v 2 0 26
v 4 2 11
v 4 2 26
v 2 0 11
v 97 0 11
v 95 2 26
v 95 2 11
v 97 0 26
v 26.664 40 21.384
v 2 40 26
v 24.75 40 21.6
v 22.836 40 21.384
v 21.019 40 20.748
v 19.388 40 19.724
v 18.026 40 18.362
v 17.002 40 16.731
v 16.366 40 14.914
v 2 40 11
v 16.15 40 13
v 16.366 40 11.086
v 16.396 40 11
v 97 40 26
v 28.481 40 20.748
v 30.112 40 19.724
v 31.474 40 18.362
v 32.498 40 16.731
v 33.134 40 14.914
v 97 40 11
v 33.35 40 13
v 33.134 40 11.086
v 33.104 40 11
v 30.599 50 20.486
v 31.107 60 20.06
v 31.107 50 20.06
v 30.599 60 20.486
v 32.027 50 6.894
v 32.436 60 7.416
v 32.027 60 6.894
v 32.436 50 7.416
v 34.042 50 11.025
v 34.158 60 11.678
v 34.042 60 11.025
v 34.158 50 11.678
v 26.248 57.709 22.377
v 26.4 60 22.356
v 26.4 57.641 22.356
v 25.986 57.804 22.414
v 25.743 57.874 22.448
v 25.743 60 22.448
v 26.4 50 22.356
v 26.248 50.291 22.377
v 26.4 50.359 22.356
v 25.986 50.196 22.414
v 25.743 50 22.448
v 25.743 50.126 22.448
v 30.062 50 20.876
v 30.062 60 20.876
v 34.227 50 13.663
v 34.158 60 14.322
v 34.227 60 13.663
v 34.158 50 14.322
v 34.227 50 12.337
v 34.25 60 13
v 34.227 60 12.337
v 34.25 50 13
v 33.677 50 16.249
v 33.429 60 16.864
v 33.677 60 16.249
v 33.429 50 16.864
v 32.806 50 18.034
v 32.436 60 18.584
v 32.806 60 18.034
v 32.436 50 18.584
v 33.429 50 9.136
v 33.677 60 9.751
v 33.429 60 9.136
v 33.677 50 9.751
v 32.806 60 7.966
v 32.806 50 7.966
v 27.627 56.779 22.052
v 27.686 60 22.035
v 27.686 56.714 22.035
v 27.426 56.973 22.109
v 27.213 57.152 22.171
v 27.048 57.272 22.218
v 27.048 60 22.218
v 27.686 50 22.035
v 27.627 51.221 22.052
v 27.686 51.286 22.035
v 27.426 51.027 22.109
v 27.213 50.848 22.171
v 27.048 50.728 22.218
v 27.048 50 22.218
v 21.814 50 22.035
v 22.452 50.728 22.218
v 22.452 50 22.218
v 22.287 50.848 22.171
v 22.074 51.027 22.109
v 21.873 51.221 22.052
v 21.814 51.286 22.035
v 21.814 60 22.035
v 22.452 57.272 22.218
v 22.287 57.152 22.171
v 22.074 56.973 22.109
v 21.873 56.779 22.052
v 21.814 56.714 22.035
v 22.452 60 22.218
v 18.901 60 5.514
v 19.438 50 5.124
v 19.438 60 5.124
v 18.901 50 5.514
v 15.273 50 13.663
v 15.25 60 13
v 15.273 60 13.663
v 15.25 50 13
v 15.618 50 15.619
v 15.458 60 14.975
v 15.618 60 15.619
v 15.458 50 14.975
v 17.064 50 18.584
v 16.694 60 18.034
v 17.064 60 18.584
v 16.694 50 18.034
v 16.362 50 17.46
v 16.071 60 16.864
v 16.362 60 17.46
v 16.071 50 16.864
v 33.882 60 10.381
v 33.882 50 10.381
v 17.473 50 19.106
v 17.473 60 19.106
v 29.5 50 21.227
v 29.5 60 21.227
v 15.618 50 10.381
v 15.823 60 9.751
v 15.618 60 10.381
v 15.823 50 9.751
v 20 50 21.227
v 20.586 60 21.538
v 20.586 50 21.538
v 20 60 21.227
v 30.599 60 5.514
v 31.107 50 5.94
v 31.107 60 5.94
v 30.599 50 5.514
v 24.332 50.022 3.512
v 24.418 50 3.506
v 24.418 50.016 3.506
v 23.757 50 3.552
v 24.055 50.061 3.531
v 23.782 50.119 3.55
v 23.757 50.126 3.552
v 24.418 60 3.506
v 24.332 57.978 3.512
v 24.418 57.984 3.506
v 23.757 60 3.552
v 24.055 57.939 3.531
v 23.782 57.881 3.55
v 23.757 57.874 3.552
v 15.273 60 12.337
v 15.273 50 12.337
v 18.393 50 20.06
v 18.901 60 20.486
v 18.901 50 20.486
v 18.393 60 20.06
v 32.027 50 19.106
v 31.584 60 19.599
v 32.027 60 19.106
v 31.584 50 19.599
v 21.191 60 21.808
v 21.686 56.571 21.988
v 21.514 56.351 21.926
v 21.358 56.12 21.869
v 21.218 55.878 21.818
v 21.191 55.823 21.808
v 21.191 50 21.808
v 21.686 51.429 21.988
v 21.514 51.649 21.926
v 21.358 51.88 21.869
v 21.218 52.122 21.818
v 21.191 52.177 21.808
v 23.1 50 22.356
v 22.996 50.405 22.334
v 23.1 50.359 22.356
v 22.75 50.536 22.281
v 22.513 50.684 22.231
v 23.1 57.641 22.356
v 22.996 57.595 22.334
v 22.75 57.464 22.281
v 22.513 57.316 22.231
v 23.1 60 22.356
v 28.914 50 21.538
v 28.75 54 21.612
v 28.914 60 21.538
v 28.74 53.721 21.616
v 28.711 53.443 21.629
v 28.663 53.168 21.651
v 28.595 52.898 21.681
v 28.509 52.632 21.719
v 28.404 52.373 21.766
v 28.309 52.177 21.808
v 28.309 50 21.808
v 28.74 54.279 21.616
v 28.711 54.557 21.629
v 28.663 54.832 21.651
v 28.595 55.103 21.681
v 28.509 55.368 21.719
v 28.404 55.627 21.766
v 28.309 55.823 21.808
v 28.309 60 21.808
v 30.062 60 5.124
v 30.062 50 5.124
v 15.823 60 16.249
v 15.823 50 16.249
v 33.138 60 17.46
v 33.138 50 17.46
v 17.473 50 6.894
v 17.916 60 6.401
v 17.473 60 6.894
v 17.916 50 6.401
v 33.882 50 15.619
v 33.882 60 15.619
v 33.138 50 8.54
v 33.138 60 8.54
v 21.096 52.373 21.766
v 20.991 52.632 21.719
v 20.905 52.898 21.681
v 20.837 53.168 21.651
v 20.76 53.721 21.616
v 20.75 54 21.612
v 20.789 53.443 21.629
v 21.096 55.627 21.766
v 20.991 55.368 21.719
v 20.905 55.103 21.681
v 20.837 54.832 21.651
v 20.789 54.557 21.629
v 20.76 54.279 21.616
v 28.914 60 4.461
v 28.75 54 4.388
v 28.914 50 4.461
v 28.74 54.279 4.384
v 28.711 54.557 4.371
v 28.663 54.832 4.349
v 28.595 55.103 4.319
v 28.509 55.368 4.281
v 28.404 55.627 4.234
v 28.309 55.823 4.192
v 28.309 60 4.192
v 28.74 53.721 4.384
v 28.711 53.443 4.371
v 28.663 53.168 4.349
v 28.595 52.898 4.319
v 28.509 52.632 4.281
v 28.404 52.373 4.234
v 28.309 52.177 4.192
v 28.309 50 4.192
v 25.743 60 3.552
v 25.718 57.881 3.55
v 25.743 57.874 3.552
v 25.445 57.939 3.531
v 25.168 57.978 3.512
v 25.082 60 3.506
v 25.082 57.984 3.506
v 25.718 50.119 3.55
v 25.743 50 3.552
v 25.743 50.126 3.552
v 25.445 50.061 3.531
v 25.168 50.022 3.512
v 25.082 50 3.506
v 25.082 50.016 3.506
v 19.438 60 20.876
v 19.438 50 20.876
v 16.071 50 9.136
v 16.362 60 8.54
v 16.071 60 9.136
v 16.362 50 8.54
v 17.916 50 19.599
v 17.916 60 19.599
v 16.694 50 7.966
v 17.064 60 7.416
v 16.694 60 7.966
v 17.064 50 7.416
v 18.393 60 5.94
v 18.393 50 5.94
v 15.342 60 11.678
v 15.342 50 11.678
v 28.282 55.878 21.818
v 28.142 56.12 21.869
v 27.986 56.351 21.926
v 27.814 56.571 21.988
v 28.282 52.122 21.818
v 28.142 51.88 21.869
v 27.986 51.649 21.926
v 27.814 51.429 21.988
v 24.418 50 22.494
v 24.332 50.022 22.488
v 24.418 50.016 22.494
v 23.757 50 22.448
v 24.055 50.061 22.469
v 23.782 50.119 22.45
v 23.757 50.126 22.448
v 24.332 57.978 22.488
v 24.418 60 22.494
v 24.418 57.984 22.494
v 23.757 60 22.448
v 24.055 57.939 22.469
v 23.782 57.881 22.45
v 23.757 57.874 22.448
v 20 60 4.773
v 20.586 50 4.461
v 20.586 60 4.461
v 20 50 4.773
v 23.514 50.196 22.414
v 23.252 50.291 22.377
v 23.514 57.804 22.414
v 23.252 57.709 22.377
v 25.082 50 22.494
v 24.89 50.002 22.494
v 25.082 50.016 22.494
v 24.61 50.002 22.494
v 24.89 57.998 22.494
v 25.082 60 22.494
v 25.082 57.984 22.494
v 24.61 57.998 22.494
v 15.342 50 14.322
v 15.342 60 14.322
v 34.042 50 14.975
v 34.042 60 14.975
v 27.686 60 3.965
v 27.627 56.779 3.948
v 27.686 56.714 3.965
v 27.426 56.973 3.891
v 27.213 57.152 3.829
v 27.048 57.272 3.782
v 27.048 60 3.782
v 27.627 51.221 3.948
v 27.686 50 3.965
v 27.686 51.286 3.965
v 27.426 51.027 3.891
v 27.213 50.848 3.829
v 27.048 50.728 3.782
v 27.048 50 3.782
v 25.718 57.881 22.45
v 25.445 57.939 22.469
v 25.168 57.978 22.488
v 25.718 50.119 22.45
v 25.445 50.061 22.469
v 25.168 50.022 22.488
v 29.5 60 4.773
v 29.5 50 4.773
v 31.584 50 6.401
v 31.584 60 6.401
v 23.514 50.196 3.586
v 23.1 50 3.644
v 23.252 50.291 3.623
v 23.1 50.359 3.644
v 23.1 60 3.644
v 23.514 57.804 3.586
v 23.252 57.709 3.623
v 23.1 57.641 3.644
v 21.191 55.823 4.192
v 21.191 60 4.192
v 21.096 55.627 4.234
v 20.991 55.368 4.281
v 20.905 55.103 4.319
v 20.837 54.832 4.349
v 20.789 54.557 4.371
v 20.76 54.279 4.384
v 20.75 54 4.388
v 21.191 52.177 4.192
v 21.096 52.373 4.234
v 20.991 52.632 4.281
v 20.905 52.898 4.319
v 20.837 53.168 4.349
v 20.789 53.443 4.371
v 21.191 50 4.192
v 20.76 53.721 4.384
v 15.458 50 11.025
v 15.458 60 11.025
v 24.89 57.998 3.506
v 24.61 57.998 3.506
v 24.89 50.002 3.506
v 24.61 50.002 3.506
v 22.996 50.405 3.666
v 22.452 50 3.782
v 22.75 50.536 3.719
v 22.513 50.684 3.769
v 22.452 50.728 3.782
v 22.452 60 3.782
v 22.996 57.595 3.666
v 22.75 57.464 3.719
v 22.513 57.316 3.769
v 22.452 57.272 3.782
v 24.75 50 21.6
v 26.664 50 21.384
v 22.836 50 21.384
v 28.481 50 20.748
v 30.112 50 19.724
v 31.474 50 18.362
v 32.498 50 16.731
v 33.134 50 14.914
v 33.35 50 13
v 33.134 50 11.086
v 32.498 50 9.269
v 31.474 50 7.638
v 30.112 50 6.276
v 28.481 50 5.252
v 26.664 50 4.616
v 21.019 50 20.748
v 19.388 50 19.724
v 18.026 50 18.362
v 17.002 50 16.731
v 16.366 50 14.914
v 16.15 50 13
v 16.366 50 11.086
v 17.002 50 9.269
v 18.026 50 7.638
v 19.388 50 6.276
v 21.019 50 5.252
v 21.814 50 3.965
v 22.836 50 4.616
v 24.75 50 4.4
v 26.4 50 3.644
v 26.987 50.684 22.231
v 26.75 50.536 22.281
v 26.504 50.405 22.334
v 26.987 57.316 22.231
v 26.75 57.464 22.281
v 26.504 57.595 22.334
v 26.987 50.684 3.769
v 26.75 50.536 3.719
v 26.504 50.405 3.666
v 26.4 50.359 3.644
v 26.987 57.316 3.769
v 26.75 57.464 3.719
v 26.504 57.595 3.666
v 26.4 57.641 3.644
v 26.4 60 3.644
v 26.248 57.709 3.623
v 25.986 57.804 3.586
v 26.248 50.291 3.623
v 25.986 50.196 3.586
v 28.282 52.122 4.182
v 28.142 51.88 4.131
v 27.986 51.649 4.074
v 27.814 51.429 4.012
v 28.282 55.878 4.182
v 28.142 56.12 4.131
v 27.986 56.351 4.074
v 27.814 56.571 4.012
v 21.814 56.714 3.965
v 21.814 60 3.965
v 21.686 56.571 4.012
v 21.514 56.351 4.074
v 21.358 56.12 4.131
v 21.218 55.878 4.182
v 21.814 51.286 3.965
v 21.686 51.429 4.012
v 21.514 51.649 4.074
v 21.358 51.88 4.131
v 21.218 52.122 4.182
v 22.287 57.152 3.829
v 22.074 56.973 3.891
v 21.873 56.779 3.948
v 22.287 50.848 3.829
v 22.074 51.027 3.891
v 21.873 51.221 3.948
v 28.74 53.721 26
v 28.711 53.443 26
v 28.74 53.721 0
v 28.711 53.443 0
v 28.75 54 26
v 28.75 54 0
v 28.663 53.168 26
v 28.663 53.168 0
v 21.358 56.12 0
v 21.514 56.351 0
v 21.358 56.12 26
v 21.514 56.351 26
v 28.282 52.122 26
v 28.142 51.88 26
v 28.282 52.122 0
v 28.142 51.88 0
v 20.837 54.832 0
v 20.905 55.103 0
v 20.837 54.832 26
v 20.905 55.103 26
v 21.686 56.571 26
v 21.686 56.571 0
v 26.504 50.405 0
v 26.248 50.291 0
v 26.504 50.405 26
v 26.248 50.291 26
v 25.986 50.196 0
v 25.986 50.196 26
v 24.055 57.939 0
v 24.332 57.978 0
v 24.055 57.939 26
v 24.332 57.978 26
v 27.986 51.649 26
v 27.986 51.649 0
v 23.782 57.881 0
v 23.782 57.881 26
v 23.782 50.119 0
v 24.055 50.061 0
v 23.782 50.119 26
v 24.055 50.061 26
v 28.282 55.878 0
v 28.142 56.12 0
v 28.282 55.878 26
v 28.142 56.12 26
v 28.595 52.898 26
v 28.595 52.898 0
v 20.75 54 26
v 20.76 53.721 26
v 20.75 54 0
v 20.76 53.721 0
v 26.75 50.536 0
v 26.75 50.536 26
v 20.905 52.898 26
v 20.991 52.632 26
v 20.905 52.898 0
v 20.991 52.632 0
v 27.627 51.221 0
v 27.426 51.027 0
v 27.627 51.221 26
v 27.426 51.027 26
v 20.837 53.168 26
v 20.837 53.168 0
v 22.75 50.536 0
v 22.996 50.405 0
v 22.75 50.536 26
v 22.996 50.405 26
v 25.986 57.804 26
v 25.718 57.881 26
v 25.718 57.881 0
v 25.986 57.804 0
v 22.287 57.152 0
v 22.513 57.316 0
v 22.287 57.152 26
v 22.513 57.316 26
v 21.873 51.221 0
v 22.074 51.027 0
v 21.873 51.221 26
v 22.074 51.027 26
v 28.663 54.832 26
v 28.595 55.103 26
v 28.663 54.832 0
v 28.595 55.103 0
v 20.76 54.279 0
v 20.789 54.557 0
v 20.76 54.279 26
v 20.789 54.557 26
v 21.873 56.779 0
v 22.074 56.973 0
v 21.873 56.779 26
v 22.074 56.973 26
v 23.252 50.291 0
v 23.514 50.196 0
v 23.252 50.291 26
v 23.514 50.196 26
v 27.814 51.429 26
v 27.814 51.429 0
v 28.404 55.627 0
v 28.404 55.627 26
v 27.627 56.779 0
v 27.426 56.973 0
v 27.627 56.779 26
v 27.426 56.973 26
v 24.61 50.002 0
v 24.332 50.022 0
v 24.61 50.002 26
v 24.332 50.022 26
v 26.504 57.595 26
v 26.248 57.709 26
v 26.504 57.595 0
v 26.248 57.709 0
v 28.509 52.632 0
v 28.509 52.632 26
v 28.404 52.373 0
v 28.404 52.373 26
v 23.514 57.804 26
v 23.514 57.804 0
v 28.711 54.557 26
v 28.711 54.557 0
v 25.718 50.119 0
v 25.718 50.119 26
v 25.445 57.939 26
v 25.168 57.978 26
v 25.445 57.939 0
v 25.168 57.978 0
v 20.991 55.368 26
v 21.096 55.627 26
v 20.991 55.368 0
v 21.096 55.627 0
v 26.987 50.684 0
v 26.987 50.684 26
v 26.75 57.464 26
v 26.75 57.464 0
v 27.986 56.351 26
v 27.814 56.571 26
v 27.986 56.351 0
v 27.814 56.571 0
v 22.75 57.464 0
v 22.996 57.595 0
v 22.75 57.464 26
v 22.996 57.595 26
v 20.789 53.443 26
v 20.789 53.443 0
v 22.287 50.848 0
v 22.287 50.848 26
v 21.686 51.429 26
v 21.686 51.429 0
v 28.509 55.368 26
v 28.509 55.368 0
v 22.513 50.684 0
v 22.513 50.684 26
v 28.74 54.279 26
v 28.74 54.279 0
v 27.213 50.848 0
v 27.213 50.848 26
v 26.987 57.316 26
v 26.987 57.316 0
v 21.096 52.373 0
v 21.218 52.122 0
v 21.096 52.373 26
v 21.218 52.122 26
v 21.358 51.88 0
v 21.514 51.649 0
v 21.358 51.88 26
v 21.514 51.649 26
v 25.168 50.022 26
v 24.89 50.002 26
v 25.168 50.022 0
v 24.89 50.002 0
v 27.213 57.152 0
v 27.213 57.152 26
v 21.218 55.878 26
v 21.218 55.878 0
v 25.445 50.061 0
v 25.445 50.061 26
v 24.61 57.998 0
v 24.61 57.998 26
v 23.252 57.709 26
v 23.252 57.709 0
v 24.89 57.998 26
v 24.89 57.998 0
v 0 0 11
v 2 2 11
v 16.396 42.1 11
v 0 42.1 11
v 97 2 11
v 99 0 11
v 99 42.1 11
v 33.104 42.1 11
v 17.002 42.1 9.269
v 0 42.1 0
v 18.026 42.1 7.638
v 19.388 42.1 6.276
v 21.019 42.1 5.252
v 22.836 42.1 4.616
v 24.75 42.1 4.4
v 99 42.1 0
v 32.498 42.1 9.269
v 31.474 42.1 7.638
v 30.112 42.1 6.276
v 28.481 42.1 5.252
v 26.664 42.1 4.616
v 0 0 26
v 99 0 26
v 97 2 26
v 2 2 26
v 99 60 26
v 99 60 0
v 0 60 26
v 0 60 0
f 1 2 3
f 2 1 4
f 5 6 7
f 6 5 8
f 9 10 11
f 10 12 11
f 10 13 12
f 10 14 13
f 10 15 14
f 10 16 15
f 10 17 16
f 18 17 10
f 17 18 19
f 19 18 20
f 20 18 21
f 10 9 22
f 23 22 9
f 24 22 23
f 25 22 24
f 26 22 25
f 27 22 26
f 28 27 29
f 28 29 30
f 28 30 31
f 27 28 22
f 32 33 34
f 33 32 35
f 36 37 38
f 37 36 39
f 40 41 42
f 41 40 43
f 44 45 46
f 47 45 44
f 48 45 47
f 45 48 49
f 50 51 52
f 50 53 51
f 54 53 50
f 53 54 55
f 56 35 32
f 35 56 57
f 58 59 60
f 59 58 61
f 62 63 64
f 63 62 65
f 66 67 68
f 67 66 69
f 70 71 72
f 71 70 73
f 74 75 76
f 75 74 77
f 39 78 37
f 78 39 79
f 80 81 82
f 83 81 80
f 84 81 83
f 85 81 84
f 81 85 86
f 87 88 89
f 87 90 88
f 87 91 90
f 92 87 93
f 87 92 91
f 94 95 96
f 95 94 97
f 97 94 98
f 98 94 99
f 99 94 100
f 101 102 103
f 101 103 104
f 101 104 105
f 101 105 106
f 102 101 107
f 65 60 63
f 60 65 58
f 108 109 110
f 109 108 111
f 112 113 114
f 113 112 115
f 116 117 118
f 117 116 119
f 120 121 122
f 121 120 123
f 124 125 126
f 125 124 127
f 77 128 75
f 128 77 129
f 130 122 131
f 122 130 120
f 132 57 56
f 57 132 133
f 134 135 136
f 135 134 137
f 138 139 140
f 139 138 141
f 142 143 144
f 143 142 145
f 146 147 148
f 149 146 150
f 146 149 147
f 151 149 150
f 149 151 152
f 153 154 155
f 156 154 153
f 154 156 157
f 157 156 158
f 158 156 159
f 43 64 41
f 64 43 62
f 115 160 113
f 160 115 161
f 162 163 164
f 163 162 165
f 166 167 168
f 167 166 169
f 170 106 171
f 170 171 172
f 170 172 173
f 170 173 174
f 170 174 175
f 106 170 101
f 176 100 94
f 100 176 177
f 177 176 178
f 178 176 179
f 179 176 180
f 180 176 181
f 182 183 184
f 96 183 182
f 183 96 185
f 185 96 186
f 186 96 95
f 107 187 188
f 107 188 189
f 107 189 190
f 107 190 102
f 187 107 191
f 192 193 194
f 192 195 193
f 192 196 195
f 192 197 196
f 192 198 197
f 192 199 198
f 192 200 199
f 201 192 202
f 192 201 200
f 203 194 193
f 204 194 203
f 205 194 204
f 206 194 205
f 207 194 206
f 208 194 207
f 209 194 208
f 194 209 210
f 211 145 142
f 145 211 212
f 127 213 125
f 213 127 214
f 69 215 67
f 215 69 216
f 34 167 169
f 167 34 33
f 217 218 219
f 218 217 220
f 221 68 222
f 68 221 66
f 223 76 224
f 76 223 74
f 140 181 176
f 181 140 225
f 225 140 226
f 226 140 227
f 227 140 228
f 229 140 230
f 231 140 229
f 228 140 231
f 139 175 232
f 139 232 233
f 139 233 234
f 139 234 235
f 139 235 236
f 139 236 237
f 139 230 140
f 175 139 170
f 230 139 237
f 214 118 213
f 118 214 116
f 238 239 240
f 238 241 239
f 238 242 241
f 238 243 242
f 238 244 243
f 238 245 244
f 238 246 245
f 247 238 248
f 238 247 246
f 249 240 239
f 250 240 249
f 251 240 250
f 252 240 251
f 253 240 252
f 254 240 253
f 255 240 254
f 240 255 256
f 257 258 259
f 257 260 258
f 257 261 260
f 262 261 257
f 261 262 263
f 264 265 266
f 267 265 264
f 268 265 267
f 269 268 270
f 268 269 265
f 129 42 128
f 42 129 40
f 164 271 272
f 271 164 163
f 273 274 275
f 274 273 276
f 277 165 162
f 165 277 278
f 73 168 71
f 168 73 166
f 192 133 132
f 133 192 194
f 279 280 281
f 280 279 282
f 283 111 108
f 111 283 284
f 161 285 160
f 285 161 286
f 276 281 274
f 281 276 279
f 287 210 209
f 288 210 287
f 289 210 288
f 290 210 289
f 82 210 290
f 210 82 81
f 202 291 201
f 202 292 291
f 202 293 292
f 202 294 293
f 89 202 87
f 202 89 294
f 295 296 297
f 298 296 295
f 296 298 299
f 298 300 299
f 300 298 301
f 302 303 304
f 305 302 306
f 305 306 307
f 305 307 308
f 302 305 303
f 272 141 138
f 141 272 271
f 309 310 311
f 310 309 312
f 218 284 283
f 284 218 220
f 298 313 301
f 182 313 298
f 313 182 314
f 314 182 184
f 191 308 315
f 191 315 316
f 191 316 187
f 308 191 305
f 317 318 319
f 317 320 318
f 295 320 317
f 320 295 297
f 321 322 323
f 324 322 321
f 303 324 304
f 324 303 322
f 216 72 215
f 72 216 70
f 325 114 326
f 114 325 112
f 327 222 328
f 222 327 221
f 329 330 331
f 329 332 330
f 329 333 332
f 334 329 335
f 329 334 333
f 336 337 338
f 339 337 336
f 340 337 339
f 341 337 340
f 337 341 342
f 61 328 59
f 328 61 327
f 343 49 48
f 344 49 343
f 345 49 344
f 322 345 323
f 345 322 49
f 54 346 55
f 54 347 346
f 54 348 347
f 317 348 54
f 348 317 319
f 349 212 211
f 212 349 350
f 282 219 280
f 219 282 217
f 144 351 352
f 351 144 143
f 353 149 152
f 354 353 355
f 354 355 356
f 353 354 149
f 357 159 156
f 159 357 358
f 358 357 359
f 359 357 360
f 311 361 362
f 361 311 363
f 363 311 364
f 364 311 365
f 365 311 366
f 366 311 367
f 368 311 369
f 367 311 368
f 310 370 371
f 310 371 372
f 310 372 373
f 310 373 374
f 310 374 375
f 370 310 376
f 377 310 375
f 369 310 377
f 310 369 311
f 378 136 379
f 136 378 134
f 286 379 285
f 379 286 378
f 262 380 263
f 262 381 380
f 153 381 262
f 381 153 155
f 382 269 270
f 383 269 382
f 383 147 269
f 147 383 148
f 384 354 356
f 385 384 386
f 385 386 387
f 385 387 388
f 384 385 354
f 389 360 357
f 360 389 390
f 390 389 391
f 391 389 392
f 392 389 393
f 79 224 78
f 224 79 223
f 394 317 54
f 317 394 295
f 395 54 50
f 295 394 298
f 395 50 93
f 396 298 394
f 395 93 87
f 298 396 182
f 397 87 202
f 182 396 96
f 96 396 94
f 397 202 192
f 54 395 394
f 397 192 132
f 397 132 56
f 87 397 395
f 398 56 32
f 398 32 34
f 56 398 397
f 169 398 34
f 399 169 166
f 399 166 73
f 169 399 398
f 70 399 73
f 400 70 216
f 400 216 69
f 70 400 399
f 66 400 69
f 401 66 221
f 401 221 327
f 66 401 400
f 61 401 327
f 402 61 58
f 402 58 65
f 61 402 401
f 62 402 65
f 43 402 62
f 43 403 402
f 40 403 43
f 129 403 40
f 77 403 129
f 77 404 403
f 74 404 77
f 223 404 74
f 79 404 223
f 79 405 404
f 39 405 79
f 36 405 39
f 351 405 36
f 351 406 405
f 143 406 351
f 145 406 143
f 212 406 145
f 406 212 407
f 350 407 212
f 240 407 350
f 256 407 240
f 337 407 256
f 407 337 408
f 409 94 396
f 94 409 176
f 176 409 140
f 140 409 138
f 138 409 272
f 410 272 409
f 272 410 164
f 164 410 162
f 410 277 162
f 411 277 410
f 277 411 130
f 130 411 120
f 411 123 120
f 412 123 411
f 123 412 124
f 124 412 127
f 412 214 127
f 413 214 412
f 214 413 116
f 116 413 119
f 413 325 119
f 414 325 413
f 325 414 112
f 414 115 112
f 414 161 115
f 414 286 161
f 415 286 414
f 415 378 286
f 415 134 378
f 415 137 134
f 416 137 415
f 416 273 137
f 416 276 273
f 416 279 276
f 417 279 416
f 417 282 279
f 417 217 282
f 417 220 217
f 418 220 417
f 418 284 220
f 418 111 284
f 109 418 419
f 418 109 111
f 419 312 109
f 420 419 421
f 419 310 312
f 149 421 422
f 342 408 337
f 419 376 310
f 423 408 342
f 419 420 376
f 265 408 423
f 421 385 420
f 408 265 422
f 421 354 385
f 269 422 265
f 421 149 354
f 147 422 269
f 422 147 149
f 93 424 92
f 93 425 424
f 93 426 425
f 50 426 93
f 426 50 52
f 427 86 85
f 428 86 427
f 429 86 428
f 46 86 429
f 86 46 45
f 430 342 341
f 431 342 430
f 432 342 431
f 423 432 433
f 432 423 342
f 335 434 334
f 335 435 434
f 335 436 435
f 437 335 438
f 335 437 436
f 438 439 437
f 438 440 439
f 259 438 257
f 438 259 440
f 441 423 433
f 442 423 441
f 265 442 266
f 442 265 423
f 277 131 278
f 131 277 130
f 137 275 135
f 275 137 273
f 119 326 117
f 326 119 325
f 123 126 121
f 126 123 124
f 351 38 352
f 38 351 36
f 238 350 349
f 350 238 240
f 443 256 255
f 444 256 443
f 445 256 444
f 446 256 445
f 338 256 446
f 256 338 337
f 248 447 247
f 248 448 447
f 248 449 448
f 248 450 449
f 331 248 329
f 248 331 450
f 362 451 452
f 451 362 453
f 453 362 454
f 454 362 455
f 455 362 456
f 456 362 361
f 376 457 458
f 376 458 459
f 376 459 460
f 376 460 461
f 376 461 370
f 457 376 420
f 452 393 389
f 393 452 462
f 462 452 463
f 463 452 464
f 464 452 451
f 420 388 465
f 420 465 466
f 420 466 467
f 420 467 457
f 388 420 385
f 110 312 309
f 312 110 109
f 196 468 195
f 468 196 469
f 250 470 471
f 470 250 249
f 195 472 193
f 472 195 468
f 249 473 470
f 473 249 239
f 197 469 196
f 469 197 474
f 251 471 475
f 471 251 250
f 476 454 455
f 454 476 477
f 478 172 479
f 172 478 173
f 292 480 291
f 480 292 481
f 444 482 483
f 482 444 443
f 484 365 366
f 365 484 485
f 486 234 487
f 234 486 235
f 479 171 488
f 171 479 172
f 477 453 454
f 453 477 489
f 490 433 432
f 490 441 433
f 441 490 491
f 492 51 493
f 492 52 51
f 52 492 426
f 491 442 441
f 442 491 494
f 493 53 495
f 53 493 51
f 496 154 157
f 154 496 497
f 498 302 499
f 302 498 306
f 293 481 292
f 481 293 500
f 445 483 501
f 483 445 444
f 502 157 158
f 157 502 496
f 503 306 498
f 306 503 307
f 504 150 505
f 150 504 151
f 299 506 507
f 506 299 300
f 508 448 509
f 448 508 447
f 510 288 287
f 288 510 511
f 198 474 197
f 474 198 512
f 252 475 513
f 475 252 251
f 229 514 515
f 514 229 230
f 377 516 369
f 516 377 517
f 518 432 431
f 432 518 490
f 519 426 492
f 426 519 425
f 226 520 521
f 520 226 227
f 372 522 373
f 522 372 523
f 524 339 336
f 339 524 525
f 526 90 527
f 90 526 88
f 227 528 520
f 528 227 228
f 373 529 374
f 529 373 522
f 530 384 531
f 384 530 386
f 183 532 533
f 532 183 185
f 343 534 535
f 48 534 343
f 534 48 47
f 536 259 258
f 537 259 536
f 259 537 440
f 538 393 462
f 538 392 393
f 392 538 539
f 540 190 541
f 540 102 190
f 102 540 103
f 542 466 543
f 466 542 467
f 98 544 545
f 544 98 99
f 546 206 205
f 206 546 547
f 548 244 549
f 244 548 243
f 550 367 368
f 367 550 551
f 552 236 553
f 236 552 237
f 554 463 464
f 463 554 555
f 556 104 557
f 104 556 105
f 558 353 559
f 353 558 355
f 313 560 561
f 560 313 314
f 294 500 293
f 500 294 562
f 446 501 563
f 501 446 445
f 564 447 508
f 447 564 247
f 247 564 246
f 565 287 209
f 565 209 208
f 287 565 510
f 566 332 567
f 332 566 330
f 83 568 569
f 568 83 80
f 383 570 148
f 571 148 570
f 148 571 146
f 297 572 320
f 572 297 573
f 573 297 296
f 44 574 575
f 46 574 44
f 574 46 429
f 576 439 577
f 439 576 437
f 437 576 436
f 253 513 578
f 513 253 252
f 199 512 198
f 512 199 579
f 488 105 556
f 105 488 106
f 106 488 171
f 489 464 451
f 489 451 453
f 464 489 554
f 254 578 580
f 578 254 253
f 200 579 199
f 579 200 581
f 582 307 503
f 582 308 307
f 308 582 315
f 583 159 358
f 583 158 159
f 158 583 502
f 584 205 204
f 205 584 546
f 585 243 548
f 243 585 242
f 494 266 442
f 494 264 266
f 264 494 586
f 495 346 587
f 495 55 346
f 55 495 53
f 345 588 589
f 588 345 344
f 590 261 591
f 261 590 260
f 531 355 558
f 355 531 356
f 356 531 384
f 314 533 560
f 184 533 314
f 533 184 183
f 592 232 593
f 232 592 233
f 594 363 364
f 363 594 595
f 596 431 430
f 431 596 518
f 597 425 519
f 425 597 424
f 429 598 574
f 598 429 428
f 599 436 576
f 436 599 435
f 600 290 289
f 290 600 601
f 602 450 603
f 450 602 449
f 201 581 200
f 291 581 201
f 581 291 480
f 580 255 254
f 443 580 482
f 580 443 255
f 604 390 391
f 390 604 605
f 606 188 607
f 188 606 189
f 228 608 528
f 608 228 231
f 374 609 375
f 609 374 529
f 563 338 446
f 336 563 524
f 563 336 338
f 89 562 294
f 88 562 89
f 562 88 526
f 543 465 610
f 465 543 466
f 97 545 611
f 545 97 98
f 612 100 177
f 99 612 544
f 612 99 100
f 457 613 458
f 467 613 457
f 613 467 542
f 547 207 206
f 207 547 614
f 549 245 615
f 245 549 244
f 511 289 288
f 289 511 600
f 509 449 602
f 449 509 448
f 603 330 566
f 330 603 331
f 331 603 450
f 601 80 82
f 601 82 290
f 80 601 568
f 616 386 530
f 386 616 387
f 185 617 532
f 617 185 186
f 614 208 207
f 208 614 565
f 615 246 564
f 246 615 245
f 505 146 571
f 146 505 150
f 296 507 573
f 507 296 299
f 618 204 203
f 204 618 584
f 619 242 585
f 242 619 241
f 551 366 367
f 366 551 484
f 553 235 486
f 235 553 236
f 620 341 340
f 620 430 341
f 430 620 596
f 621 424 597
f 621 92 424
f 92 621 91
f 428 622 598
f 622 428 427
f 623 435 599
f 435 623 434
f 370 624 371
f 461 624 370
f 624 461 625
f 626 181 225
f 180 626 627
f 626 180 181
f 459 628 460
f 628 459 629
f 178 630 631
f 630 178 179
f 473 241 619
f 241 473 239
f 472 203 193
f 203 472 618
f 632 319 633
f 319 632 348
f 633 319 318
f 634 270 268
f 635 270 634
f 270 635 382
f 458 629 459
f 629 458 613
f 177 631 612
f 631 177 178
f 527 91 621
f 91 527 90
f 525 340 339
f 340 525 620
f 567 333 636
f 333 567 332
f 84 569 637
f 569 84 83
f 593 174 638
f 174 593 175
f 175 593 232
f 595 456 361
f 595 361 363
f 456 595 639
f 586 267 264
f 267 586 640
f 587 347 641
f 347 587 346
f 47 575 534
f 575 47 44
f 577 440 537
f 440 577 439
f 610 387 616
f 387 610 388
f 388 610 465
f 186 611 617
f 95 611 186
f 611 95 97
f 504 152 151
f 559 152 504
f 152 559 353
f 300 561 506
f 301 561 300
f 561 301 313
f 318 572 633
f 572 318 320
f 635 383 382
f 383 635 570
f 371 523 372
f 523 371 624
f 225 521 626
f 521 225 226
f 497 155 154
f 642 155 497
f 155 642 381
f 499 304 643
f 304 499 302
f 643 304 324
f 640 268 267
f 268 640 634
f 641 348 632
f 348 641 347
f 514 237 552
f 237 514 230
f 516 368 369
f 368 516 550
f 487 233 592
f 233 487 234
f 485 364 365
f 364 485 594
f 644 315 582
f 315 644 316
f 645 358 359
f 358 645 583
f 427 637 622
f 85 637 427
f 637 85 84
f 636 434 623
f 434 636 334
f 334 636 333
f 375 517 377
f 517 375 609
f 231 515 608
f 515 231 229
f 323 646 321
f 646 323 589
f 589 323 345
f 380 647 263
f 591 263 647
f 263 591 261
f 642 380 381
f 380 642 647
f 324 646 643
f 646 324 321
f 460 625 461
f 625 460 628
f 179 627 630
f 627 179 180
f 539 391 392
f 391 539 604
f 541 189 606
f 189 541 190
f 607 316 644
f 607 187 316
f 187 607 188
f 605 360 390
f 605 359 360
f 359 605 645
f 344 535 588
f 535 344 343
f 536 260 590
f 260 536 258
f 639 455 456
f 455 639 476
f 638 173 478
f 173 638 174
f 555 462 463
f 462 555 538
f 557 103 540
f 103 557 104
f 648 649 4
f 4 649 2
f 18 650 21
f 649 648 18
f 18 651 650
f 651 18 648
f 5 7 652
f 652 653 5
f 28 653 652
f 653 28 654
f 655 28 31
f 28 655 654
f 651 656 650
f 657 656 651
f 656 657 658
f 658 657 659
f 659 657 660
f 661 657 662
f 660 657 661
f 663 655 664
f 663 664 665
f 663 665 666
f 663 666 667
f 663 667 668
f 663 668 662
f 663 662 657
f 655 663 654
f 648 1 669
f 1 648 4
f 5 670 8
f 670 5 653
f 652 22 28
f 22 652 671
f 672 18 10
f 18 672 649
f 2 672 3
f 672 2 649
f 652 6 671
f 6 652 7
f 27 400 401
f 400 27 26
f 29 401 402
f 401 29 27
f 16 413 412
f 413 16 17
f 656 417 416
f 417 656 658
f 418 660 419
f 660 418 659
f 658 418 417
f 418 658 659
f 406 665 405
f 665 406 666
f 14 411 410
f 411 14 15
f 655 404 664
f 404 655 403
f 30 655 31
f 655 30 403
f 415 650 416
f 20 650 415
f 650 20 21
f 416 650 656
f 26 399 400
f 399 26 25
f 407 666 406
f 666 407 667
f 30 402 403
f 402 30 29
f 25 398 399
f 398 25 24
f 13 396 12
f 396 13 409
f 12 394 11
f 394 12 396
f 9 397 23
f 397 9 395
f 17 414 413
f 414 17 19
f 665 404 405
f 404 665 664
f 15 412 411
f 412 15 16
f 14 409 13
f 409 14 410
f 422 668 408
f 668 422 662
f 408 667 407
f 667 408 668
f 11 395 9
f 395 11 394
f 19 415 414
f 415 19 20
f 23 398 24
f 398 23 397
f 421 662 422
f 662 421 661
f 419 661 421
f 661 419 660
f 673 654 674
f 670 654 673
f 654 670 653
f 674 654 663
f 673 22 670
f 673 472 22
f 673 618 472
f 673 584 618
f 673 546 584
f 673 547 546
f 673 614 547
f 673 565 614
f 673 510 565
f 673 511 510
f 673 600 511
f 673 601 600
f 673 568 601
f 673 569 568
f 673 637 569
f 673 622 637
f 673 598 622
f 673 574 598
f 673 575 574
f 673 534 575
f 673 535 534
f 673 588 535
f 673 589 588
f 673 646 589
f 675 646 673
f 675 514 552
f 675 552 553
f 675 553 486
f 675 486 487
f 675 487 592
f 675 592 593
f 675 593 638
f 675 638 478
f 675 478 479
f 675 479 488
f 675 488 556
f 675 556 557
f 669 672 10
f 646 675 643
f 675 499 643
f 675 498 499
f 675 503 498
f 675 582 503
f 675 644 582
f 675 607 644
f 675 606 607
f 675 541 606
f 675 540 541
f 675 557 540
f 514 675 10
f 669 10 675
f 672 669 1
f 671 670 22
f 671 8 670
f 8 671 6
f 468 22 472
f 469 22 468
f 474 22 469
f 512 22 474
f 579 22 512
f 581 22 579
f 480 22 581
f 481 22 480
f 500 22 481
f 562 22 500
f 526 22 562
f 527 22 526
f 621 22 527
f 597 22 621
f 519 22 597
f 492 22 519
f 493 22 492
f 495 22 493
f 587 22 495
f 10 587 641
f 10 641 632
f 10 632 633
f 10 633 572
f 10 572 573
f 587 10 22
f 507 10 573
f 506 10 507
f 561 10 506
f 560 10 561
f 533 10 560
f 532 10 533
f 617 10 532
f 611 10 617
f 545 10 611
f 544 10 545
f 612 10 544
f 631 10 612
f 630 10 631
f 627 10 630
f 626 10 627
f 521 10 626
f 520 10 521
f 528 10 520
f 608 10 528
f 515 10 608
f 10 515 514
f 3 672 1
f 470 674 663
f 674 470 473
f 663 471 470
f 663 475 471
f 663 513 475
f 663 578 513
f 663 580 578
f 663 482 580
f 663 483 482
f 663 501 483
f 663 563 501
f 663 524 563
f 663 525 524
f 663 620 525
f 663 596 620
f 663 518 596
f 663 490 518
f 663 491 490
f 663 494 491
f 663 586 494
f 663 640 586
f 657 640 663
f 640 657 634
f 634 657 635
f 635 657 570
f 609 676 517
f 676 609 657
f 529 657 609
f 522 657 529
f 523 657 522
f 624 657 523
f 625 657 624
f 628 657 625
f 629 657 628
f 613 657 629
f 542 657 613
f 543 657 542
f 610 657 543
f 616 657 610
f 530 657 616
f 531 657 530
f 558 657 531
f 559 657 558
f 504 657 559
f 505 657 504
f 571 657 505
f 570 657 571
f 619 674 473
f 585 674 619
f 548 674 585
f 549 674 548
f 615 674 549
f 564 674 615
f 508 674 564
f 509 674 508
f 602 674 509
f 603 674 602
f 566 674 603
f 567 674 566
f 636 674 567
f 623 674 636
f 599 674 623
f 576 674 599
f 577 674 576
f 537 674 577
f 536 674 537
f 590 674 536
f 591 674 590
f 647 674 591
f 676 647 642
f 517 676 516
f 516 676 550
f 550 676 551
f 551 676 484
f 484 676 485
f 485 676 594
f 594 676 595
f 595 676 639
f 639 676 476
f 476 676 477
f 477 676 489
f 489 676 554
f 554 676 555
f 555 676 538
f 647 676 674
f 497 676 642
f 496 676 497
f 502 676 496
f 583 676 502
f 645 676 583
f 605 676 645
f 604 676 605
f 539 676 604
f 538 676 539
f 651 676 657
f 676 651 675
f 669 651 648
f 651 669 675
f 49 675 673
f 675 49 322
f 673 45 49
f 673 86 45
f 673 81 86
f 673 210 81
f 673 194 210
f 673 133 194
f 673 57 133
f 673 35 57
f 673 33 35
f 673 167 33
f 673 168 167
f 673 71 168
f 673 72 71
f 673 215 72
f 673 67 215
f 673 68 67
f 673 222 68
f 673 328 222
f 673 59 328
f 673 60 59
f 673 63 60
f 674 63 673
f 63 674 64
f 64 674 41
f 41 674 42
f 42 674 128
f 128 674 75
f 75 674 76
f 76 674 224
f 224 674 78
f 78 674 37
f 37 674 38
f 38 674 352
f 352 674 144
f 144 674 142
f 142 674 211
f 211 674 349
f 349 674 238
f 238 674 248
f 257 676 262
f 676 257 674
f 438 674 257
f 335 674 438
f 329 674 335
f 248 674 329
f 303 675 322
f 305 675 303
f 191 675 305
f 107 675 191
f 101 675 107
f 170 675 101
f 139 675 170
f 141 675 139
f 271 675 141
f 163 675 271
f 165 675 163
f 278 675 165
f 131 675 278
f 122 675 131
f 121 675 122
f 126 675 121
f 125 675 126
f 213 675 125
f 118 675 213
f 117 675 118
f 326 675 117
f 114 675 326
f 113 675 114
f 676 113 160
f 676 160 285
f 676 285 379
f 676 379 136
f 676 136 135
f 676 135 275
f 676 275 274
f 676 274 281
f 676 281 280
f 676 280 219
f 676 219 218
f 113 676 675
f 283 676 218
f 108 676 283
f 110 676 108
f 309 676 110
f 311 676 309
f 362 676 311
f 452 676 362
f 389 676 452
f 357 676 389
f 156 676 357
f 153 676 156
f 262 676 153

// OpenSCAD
// file: hose-adapter.scad
/*
 
    Standerd hose adapter for BOSH GCM 8 SJL Miter Saw
    Anton Augustsson
    
*/




module hoseAdapter (extraHookLenght,
    radiusRemoval,rx,x,y,z) {

$fn=90;
wallThickness = 3;
wallThickness2 = 1;
    
hoseLenght   = 55;
hoseRadius   = 33/2;
mountLenght  = 40;
mountRadius  = radiusRemoval/4;//45/2

wallesRadius = hoseRadius
    +wallThickness;
wallesRadius2 = mountRadius
    +wallThickness2;
    
hookRadius   = 8/2;
hookDistance = hoseLenght
    -hookRadius;
hookLength   = wallesRadius2*2
    +extraHookLenght;




translate([x,y,z]) 
rotate ([rx,0,0])
difference() {
union(){
cylinder(
    h = mountLenght, 
    r = wallesRadius);

translate([
    0,
    0,
    mountLenght]) 
cylinder(
    h = hoseLenght-mountLenght, 
    r = wallesRadius2);


translate([
    0,
    (hookLength)/2,
    hookDistance]) 
rotate([90,0,0])
cylinder(
    h = hookLength, 
    r = hookRadius);

}

union () {
cylinder(
    h = mountLenght
    -wallThickness, 
    r = hoseRadius);

cylinder(
    h = hoseLenght+1, 
    r = mountRadius);
}
}}

hoseAdapter (2,25,-90,0,0,0);
//hoseAdapter (25,0,0,0,0);
// main file
/*

    Bottom
    
    By Anton Augustsson


*/

use <hose-adapter.scad>
//hoseAdapter (-90,0,0,0);


/*
    ---------- varibles ---------- 
*/

thickness = 2;
depth = 36;

widthGuide  = 95; // Inner not total 
heightGuide = 26;
depthGuide = 20; // Depth guide
clipesExtended = 4;
depthHose = 20;

totalDepth = depth+depthGuide+clipesExtended;
totalWidth = widthGuide+thickness*2;

removeCliper = sqrt(2*pow((widthGuide/2),2));
removalMiddle = totalDepth
    -depthGuide-2;

radiusRemoval = 34;
extraHookLenght = heightGuide-radiusRemoval/2-1;

extended = 2;
removalLowerDepth = 40+extended+0.1;
removalLowerHeight = 10;

/*
    ---------- Code ---------- 
*/


color("Wheat")
difference () {
union () {
// Main
translate([
    0,
    0,
    0]) 
cube(size = [
    totalWidth,
    totalDepth,
    heightGuide]);
    
}

union () {
// removal clip
difference () {
translate([
    (widthGuide/2)+(totalWidth-widthGuide)/2,
    -widthGuide/2,
    -1]) 
rotate ([0,0,45])
cube(size = [
    removeCliper,
    removeCliper,
    heightGuide+2]);

// to prevent clip extruding to long
translate([
    (totalWidth-widthGuide)/2,
    totalDepth-depthGuide,
    -1]) 
cube(size = [
    widthGuide,
    removalMiddle,
    heightGuide+2]);
}

// removal lower
translate([
    -1,
    0,
    -1]) 
cube(size = [
    totalWidth+2,
    removalLowerDepth,
    removalLowerHeight+2]);

// rempval middle
translate([
    (totalWidth-widthGuide)/2,
    totalDepth-depthGuide-removalMiddle,
    -1]) 
cube(size = [
    widthGuide,
    removalMiddle,
    heightGuide+2]);


// remove ventalation hole
translate([
    totalWidth/4,
    totalDepth+1,
    heightGuide/2]) 
rotate ([90,0,0])
cylinder(
    h = depthGuide+18, 
    r = radiusRemoval/4+0.1);    

// remove hose adapter
hoseAdapter (extraHookLenght,radiusRemoval,
    90,totalWidth/4,
    totalDepth+55-10,heightGuide/2);
}
}
